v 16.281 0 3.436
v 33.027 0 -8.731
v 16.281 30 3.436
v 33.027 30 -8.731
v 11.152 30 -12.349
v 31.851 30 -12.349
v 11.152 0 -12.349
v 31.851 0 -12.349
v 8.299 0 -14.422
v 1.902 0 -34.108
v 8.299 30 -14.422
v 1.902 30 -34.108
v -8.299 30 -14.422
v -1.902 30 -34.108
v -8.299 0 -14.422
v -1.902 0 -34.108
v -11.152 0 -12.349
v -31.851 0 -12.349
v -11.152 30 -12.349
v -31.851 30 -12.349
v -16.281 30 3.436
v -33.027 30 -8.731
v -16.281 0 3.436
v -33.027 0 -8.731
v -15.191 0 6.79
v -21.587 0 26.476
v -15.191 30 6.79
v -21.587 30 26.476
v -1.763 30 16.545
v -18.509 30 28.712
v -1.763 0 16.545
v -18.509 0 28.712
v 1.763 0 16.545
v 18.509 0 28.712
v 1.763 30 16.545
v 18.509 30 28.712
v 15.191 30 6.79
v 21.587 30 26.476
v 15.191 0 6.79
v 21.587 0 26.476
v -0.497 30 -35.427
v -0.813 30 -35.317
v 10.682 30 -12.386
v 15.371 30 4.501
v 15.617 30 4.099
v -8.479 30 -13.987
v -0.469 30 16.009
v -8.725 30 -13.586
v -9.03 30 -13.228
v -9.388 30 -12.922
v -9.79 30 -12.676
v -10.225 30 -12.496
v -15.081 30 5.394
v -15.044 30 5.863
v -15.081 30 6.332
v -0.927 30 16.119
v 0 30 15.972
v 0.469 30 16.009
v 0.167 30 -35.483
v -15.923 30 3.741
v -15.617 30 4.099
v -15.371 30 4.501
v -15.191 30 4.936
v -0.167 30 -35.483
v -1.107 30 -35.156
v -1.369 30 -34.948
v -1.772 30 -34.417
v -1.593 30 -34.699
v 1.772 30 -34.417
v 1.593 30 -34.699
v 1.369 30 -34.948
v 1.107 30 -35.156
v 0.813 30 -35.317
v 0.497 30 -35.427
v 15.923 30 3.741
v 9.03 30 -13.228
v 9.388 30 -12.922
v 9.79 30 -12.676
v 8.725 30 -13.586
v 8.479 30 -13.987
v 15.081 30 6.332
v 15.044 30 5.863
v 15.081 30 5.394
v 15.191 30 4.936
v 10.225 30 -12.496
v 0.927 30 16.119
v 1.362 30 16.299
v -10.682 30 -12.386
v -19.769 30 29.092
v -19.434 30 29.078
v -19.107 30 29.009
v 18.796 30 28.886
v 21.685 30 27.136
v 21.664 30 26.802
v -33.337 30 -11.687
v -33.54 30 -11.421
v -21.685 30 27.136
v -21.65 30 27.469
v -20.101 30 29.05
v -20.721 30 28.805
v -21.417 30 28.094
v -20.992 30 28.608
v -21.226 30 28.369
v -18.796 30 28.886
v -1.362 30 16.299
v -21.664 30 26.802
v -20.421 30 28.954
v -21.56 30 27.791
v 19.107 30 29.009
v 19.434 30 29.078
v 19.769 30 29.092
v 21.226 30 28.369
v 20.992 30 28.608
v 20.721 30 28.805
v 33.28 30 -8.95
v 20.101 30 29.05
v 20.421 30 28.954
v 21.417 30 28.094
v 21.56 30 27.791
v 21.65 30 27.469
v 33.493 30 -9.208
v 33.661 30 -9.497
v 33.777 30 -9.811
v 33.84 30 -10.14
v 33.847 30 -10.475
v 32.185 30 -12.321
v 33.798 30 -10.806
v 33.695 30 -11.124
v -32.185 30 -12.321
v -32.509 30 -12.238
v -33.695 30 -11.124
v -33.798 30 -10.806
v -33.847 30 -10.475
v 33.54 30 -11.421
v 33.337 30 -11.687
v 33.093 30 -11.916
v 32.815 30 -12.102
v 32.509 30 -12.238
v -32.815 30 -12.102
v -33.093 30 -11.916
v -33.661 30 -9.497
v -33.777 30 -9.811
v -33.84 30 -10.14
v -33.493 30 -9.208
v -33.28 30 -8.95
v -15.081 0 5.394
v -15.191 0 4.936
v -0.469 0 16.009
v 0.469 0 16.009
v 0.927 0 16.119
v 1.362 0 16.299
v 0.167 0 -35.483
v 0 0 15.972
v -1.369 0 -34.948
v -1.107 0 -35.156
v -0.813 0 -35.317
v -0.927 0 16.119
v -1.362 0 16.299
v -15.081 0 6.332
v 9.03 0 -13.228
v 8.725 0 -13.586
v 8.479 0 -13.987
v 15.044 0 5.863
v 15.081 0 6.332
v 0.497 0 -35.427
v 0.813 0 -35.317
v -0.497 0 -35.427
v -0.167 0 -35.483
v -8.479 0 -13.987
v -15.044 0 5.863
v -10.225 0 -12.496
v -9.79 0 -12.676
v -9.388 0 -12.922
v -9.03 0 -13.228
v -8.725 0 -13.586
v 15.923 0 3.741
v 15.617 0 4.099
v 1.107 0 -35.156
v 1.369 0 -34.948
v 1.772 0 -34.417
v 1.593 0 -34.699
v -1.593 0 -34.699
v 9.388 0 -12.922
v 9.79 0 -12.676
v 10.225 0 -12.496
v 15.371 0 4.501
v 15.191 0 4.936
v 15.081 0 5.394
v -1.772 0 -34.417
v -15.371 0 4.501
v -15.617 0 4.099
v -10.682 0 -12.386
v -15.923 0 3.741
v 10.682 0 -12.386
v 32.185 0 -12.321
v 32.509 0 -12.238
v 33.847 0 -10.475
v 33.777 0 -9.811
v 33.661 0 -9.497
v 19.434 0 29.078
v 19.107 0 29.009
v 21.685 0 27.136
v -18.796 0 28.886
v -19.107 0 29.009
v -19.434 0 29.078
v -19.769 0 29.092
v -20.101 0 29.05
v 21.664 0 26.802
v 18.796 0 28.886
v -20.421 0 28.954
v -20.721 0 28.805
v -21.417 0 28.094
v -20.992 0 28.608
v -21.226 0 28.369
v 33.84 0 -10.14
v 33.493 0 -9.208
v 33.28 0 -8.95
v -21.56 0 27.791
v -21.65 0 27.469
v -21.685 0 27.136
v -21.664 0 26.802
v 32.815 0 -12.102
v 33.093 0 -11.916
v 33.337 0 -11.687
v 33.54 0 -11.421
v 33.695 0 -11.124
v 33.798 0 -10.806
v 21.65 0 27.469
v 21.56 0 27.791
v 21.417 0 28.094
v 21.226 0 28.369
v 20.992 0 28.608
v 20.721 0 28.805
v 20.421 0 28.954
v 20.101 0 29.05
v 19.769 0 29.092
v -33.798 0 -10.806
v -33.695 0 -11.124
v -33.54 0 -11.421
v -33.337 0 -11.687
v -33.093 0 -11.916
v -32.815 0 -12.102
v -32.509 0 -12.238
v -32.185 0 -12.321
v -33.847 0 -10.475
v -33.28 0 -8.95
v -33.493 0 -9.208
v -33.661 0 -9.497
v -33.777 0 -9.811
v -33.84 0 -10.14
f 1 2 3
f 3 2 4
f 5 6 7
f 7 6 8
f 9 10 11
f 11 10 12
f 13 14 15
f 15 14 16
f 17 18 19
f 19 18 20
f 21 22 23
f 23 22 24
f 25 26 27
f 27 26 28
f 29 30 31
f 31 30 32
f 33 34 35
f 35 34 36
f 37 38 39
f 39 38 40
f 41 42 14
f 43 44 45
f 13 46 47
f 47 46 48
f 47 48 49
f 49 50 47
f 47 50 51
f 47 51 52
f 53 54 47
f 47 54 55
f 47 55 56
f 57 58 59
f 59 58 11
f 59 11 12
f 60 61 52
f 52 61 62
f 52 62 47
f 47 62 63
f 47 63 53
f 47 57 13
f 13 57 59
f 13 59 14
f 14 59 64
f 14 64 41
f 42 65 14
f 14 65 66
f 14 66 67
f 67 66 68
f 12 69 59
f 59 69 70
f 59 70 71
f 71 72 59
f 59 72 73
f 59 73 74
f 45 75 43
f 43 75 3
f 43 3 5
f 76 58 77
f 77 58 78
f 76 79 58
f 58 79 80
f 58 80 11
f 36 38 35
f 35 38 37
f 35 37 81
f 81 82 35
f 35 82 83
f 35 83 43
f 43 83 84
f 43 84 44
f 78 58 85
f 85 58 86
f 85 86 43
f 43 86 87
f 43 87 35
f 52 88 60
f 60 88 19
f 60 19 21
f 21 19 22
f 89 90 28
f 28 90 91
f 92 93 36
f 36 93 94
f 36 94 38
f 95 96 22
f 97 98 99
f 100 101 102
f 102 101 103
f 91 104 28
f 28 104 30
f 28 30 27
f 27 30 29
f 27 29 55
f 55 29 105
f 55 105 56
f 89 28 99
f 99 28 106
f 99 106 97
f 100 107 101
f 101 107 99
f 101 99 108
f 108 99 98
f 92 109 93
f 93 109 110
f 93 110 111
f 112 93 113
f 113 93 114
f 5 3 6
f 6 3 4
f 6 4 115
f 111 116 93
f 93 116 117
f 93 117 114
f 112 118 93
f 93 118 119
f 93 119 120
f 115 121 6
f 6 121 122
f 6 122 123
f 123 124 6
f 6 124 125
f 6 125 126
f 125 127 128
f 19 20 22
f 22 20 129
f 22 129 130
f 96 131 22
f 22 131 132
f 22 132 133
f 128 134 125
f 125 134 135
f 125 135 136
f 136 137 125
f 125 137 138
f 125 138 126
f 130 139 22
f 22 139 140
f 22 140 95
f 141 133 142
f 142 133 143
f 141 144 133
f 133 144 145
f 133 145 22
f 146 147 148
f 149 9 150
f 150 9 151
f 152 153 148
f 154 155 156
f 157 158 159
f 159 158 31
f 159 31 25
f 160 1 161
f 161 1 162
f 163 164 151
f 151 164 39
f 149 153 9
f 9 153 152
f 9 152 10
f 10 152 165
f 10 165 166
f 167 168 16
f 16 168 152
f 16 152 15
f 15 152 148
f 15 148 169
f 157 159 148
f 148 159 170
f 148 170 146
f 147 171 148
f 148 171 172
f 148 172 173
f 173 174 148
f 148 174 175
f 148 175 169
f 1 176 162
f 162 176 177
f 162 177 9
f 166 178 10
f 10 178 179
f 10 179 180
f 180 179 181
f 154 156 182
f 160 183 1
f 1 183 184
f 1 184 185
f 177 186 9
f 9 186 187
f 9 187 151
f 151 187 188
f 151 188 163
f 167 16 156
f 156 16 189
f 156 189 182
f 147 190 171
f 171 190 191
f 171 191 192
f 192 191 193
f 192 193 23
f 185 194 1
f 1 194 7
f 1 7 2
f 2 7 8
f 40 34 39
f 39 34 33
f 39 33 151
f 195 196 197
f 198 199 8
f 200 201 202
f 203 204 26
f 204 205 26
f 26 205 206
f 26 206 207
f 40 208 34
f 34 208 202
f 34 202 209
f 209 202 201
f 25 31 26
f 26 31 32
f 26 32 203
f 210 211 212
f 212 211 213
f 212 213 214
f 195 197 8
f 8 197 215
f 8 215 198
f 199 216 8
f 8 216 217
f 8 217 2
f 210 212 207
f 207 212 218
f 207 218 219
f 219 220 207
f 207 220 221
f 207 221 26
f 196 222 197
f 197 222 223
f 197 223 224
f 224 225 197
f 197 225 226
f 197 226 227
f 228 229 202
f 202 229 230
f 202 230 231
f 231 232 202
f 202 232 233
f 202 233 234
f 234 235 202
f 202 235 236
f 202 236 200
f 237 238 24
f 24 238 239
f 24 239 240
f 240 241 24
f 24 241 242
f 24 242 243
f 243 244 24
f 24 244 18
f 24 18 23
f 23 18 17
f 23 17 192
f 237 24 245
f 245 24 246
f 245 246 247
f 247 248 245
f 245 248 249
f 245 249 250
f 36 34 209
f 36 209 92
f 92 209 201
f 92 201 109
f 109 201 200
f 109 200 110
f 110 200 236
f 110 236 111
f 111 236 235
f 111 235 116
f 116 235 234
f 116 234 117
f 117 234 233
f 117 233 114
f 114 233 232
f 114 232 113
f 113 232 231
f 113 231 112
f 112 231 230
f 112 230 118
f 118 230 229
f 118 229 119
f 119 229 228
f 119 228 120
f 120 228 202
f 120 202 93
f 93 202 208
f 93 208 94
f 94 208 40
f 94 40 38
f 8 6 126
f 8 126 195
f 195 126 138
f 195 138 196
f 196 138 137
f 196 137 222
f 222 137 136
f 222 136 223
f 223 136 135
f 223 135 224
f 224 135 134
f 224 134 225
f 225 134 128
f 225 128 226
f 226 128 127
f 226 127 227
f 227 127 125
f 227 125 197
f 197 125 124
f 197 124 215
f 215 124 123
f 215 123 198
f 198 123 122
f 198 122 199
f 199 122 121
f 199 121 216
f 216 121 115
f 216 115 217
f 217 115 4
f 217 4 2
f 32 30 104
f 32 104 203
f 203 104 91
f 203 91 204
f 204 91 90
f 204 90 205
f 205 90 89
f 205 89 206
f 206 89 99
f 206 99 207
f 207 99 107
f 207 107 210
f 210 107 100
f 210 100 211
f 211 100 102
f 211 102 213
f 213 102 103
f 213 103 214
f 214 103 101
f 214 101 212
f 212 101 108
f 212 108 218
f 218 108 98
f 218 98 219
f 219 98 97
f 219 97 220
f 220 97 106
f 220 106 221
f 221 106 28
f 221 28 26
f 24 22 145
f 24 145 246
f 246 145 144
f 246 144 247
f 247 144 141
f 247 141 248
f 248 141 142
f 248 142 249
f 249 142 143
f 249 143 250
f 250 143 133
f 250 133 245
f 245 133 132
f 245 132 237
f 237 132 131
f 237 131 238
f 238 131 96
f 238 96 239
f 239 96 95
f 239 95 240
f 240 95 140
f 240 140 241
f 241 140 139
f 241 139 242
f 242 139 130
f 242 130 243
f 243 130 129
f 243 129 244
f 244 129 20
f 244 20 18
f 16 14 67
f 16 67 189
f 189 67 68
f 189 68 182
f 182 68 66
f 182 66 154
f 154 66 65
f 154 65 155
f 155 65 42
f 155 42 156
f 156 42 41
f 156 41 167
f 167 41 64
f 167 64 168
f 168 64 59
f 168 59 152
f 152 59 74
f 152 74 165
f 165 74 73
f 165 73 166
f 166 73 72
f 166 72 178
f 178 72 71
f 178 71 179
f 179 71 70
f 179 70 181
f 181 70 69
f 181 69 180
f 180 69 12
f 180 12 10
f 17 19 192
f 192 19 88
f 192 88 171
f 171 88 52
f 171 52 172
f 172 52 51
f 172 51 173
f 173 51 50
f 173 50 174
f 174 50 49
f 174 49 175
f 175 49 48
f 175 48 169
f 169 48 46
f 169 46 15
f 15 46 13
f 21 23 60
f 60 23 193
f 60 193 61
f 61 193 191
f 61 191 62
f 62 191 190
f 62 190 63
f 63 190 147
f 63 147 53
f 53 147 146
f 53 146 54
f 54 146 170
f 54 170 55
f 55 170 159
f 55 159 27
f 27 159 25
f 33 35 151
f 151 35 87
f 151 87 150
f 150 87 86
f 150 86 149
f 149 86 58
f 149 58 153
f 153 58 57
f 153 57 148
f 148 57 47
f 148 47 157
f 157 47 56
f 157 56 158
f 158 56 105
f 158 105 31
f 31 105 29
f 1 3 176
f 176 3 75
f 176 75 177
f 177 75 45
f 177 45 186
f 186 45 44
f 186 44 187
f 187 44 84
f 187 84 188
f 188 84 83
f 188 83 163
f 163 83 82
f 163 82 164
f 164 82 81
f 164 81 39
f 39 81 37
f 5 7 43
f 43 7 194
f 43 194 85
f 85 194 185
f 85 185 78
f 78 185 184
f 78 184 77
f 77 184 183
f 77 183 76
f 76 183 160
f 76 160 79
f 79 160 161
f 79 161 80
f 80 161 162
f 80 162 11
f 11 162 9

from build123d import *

# Parameters (mm, degrees)
BOSS_EXTRUDE1_DEPTH = 30
FILLET1_R           = 2
FILLET2_R           = 3


with BuildPart() as part:
    # Sketch2 → Boss-Extrude1 (new body)
    with BuildSketch(Plane(origin=(0, 0, 0), x_dir=(1, 0, 0), z_dir=(0, 1, 0))):
        Polygon((0, 39.962281052), (-8.9720911, 12.349023979), (-38.0063878, 12.349023979), (-14.51714835, -4.716907432), (-23.48923945, -32.330164505), (0, -15.264233094), (23.48923945, -32.330164505), (14.51714835, -4.716907432), (38.0063878, 12.349023979), (8.9720911, 12.349023979), align=None)
    extrude(amount=BOSS_EXTRUDE1_DEPTH)

    # Fillet1
    fillet1_edges = [part.edges().sort_by_distance(p)[0] for p in [
        (23.48923945, 15, 32.330164505),
        (-23.48923945, 15, 32.330164505),
        (-38.0063878, 15, -12.349023979),
        (0, 15, -39.962281052),
        (38.0063878, 15, -12.349023979),
    ]]
    fillet(fillet1_edges, radius=FILLET1_R)

    # Fillet2
    fillet2_edges = [part.edges().sort_by_distance(p)[0] for p in [
        (14.51714835, 15, 4.716907432),
        (0, 15, 15.264233094),
        (-14.51714835, 15, 4.716907432),
        (-8.9720911, 15, -12.349023979),
        (8.9720911, 15, -12.349023979),
    ]]
    fillet(fillet2_edges, radius=FILLET2_R)


solid = part.part
